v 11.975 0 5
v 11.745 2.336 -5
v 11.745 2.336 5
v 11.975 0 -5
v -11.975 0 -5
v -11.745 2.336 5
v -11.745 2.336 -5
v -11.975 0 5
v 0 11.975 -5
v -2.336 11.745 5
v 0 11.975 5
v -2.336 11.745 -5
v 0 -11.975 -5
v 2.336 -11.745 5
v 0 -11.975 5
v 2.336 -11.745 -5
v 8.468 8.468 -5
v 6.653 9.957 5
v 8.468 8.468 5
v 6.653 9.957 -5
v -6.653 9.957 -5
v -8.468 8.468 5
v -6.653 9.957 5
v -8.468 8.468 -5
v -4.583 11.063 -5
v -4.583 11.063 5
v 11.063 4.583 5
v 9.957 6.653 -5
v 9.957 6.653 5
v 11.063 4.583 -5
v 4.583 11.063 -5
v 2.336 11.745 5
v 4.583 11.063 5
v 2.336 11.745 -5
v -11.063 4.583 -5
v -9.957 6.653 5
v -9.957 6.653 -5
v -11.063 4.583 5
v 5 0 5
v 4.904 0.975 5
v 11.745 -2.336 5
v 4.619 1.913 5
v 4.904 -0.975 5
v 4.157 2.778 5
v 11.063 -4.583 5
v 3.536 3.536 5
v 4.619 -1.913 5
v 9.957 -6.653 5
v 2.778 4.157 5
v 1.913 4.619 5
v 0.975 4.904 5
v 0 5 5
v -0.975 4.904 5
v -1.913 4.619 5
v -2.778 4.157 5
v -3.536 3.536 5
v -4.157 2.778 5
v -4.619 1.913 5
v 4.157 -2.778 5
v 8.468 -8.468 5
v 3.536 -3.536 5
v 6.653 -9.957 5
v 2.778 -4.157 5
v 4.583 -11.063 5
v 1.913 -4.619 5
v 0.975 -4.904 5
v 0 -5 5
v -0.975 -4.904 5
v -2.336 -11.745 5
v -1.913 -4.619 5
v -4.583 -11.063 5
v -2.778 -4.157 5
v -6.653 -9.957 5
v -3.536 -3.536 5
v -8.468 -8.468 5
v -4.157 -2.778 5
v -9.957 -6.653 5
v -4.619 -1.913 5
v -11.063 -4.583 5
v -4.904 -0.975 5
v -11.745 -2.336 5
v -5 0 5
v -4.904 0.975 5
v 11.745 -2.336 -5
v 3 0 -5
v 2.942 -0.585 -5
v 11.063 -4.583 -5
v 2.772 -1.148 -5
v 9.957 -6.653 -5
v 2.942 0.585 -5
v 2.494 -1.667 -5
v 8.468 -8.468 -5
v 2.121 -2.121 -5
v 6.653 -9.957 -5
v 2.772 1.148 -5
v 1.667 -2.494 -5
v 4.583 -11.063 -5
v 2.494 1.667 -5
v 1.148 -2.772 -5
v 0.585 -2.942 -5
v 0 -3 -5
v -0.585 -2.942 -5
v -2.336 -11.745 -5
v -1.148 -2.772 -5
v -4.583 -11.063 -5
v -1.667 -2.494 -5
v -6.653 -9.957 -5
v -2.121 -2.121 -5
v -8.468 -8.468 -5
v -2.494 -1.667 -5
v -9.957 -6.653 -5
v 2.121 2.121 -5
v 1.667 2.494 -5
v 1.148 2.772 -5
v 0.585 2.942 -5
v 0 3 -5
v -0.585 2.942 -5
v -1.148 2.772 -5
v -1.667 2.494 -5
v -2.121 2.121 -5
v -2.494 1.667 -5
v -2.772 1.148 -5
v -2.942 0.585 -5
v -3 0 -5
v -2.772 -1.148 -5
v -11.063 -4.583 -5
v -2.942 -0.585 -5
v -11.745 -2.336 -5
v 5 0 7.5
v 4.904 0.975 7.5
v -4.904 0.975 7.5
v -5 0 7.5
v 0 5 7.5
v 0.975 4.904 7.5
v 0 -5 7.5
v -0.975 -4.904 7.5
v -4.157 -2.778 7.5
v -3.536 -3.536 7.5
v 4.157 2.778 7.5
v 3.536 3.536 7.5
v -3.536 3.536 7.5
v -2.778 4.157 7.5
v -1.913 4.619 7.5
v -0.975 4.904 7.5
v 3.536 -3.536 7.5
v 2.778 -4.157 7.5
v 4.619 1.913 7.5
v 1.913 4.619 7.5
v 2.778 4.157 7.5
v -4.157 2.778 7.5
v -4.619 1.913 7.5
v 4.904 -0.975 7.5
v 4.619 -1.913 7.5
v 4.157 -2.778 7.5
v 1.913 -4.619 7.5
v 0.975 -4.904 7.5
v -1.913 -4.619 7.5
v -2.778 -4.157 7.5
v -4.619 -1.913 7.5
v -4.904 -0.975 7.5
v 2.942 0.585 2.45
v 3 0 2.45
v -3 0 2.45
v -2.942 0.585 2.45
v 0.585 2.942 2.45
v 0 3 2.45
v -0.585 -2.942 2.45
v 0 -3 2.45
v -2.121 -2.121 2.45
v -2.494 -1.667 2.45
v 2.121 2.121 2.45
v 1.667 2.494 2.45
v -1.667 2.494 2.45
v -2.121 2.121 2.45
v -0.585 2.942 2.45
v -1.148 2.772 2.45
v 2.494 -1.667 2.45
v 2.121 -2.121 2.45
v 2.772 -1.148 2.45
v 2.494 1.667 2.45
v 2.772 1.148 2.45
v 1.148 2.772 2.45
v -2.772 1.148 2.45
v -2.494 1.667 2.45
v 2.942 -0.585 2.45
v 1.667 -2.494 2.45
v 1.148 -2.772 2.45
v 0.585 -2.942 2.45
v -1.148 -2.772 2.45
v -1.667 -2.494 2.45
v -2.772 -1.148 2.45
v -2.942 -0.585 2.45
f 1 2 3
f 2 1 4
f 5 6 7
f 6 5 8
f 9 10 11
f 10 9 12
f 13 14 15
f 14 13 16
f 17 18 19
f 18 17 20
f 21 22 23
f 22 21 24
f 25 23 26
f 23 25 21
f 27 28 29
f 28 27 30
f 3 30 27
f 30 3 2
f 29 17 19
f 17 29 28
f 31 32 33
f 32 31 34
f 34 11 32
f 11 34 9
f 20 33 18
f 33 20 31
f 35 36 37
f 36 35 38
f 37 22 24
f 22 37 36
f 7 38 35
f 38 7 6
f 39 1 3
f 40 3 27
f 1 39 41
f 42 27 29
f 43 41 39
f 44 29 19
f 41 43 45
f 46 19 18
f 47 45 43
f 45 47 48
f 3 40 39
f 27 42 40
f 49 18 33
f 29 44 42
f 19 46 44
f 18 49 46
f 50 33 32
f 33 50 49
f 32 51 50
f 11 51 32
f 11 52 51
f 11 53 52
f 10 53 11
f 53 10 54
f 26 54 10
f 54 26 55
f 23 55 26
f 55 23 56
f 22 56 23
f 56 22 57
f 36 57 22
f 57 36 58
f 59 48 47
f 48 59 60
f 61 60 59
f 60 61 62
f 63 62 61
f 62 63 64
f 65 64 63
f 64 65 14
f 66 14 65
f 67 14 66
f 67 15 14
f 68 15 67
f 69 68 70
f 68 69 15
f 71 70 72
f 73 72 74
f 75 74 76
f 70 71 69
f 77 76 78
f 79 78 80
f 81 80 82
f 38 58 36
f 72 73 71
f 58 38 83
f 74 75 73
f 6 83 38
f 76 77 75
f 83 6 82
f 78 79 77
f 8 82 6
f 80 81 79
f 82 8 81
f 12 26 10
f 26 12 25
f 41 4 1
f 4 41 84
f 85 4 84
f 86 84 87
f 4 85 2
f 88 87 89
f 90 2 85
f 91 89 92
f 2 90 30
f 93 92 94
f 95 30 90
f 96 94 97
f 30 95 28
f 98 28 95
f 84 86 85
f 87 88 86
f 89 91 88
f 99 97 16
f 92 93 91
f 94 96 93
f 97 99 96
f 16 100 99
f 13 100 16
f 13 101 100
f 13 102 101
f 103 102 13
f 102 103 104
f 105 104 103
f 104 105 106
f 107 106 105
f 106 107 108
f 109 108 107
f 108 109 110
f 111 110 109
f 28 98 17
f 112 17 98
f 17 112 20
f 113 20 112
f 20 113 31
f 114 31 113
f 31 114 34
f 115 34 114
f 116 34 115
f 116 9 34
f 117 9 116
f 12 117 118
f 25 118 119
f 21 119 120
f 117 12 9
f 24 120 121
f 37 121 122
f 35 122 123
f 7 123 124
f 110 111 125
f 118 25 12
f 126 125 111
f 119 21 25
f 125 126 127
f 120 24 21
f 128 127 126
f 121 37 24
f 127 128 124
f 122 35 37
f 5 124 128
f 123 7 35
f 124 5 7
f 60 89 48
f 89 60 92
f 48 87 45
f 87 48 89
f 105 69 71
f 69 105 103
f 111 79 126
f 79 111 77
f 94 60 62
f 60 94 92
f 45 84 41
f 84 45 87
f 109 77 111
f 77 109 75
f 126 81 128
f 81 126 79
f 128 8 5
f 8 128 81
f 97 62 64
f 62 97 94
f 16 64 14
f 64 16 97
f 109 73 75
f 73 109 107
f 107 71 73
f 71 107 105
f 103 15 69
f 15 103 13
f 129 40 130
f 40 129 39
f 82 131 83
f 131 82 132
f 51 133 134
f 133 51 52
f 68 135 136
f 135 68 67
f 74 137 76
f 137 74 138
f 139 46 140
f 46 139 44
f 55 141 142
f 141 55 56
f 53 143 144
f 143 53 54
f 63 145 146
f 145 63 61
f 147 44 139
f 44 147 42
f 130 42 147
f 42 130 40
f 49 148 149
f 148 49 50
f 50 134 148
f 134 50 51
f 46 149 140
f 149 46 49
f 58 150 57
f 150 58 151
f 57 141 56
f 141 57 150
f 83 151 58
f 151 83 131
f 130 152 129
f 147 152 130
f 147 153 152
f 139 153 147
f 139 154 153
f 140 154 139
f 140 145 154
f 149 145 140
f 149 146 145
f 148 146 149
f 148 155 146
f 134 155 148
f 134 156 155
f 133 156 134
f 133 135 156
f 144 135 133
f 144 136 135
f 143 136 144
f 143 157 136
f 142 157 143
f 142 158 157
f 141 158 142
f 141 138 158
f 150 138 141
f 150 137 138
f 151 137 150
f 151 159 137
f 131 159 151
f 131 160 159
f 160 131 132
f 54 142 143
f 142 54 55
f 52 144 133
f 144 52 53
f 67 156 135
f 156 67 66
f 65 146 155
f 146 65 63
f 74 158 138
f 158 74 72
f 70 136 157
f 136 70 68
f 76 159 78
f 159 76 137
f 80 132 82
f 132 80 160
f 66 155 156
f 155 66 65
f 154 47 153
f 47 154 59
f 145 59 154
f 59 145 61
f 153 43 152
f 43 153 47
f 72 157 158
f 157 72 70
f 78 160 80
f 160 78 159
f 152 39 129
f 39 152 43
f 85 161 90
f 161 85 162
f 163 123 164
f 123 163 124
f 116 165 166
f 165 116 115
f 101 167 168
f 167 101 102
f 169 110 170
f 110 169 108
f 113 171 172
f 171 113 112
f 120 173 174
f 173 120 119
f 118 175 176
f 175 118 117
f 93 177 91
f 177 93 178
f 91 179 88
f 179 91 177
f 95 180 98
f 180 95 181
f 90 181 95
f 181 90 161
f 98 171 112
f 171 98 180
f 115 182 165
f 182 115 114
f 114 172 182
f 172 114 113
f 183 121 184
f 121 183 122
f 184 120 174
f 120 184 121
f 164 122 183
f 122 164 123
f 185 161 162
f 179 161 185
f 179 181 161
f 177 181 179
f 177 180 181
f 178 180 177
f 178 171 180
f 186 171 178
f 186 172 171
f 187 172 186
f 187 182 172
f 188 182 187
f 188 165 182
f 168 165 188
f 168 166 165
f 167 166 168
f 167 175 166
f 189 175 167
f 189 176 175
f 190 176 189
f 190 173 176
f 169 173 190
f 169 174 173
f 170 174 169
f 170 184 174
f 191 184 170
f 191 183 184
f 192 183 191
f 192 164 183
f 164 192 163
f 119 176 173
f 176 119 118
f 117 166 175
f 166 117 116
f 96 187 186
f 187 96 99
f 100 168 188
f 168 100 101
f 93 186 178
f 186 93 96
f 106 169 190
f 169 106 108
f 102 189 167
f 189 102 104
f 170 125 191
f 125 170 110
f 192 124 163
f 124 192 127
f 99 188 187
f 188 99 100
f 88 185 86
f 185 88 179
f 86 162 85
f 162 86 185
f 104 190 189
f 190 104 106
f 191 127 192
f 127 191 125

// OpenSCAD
//Roof Socket Plug - insert & glue pair into 10mm holes in top of control box to support roof
//Socket hole tapers from 22.7 to 25.2 = 2.5mm
plug_dia = 22.7 + (2.5/2);
echo("Plug Dia:", plug_dia);
plug_height = 10;//mm
spigot_height = 2.5;//mm
spigot_dia = 10;//mm
clearance_height = 7.5;//mm
clearance_dia = 6;//mm

module plug() {
    difference() {
        union() {
            cylinder(h=plug_height, d=plug_dia, $fn=32, center=true);
            translate([0, 0, (plug_height + spigot_height)/2]) cylinder(h=spigot_height, d=spigot_dia, $fn=32, center=true);
        }
        translate([0, 0, -(plug_height - clearance_height + 0.1)/2]) cylinder(h=clearance_height, d=clearance_dia, $fn=32, center=true);
    }
}

plug();
